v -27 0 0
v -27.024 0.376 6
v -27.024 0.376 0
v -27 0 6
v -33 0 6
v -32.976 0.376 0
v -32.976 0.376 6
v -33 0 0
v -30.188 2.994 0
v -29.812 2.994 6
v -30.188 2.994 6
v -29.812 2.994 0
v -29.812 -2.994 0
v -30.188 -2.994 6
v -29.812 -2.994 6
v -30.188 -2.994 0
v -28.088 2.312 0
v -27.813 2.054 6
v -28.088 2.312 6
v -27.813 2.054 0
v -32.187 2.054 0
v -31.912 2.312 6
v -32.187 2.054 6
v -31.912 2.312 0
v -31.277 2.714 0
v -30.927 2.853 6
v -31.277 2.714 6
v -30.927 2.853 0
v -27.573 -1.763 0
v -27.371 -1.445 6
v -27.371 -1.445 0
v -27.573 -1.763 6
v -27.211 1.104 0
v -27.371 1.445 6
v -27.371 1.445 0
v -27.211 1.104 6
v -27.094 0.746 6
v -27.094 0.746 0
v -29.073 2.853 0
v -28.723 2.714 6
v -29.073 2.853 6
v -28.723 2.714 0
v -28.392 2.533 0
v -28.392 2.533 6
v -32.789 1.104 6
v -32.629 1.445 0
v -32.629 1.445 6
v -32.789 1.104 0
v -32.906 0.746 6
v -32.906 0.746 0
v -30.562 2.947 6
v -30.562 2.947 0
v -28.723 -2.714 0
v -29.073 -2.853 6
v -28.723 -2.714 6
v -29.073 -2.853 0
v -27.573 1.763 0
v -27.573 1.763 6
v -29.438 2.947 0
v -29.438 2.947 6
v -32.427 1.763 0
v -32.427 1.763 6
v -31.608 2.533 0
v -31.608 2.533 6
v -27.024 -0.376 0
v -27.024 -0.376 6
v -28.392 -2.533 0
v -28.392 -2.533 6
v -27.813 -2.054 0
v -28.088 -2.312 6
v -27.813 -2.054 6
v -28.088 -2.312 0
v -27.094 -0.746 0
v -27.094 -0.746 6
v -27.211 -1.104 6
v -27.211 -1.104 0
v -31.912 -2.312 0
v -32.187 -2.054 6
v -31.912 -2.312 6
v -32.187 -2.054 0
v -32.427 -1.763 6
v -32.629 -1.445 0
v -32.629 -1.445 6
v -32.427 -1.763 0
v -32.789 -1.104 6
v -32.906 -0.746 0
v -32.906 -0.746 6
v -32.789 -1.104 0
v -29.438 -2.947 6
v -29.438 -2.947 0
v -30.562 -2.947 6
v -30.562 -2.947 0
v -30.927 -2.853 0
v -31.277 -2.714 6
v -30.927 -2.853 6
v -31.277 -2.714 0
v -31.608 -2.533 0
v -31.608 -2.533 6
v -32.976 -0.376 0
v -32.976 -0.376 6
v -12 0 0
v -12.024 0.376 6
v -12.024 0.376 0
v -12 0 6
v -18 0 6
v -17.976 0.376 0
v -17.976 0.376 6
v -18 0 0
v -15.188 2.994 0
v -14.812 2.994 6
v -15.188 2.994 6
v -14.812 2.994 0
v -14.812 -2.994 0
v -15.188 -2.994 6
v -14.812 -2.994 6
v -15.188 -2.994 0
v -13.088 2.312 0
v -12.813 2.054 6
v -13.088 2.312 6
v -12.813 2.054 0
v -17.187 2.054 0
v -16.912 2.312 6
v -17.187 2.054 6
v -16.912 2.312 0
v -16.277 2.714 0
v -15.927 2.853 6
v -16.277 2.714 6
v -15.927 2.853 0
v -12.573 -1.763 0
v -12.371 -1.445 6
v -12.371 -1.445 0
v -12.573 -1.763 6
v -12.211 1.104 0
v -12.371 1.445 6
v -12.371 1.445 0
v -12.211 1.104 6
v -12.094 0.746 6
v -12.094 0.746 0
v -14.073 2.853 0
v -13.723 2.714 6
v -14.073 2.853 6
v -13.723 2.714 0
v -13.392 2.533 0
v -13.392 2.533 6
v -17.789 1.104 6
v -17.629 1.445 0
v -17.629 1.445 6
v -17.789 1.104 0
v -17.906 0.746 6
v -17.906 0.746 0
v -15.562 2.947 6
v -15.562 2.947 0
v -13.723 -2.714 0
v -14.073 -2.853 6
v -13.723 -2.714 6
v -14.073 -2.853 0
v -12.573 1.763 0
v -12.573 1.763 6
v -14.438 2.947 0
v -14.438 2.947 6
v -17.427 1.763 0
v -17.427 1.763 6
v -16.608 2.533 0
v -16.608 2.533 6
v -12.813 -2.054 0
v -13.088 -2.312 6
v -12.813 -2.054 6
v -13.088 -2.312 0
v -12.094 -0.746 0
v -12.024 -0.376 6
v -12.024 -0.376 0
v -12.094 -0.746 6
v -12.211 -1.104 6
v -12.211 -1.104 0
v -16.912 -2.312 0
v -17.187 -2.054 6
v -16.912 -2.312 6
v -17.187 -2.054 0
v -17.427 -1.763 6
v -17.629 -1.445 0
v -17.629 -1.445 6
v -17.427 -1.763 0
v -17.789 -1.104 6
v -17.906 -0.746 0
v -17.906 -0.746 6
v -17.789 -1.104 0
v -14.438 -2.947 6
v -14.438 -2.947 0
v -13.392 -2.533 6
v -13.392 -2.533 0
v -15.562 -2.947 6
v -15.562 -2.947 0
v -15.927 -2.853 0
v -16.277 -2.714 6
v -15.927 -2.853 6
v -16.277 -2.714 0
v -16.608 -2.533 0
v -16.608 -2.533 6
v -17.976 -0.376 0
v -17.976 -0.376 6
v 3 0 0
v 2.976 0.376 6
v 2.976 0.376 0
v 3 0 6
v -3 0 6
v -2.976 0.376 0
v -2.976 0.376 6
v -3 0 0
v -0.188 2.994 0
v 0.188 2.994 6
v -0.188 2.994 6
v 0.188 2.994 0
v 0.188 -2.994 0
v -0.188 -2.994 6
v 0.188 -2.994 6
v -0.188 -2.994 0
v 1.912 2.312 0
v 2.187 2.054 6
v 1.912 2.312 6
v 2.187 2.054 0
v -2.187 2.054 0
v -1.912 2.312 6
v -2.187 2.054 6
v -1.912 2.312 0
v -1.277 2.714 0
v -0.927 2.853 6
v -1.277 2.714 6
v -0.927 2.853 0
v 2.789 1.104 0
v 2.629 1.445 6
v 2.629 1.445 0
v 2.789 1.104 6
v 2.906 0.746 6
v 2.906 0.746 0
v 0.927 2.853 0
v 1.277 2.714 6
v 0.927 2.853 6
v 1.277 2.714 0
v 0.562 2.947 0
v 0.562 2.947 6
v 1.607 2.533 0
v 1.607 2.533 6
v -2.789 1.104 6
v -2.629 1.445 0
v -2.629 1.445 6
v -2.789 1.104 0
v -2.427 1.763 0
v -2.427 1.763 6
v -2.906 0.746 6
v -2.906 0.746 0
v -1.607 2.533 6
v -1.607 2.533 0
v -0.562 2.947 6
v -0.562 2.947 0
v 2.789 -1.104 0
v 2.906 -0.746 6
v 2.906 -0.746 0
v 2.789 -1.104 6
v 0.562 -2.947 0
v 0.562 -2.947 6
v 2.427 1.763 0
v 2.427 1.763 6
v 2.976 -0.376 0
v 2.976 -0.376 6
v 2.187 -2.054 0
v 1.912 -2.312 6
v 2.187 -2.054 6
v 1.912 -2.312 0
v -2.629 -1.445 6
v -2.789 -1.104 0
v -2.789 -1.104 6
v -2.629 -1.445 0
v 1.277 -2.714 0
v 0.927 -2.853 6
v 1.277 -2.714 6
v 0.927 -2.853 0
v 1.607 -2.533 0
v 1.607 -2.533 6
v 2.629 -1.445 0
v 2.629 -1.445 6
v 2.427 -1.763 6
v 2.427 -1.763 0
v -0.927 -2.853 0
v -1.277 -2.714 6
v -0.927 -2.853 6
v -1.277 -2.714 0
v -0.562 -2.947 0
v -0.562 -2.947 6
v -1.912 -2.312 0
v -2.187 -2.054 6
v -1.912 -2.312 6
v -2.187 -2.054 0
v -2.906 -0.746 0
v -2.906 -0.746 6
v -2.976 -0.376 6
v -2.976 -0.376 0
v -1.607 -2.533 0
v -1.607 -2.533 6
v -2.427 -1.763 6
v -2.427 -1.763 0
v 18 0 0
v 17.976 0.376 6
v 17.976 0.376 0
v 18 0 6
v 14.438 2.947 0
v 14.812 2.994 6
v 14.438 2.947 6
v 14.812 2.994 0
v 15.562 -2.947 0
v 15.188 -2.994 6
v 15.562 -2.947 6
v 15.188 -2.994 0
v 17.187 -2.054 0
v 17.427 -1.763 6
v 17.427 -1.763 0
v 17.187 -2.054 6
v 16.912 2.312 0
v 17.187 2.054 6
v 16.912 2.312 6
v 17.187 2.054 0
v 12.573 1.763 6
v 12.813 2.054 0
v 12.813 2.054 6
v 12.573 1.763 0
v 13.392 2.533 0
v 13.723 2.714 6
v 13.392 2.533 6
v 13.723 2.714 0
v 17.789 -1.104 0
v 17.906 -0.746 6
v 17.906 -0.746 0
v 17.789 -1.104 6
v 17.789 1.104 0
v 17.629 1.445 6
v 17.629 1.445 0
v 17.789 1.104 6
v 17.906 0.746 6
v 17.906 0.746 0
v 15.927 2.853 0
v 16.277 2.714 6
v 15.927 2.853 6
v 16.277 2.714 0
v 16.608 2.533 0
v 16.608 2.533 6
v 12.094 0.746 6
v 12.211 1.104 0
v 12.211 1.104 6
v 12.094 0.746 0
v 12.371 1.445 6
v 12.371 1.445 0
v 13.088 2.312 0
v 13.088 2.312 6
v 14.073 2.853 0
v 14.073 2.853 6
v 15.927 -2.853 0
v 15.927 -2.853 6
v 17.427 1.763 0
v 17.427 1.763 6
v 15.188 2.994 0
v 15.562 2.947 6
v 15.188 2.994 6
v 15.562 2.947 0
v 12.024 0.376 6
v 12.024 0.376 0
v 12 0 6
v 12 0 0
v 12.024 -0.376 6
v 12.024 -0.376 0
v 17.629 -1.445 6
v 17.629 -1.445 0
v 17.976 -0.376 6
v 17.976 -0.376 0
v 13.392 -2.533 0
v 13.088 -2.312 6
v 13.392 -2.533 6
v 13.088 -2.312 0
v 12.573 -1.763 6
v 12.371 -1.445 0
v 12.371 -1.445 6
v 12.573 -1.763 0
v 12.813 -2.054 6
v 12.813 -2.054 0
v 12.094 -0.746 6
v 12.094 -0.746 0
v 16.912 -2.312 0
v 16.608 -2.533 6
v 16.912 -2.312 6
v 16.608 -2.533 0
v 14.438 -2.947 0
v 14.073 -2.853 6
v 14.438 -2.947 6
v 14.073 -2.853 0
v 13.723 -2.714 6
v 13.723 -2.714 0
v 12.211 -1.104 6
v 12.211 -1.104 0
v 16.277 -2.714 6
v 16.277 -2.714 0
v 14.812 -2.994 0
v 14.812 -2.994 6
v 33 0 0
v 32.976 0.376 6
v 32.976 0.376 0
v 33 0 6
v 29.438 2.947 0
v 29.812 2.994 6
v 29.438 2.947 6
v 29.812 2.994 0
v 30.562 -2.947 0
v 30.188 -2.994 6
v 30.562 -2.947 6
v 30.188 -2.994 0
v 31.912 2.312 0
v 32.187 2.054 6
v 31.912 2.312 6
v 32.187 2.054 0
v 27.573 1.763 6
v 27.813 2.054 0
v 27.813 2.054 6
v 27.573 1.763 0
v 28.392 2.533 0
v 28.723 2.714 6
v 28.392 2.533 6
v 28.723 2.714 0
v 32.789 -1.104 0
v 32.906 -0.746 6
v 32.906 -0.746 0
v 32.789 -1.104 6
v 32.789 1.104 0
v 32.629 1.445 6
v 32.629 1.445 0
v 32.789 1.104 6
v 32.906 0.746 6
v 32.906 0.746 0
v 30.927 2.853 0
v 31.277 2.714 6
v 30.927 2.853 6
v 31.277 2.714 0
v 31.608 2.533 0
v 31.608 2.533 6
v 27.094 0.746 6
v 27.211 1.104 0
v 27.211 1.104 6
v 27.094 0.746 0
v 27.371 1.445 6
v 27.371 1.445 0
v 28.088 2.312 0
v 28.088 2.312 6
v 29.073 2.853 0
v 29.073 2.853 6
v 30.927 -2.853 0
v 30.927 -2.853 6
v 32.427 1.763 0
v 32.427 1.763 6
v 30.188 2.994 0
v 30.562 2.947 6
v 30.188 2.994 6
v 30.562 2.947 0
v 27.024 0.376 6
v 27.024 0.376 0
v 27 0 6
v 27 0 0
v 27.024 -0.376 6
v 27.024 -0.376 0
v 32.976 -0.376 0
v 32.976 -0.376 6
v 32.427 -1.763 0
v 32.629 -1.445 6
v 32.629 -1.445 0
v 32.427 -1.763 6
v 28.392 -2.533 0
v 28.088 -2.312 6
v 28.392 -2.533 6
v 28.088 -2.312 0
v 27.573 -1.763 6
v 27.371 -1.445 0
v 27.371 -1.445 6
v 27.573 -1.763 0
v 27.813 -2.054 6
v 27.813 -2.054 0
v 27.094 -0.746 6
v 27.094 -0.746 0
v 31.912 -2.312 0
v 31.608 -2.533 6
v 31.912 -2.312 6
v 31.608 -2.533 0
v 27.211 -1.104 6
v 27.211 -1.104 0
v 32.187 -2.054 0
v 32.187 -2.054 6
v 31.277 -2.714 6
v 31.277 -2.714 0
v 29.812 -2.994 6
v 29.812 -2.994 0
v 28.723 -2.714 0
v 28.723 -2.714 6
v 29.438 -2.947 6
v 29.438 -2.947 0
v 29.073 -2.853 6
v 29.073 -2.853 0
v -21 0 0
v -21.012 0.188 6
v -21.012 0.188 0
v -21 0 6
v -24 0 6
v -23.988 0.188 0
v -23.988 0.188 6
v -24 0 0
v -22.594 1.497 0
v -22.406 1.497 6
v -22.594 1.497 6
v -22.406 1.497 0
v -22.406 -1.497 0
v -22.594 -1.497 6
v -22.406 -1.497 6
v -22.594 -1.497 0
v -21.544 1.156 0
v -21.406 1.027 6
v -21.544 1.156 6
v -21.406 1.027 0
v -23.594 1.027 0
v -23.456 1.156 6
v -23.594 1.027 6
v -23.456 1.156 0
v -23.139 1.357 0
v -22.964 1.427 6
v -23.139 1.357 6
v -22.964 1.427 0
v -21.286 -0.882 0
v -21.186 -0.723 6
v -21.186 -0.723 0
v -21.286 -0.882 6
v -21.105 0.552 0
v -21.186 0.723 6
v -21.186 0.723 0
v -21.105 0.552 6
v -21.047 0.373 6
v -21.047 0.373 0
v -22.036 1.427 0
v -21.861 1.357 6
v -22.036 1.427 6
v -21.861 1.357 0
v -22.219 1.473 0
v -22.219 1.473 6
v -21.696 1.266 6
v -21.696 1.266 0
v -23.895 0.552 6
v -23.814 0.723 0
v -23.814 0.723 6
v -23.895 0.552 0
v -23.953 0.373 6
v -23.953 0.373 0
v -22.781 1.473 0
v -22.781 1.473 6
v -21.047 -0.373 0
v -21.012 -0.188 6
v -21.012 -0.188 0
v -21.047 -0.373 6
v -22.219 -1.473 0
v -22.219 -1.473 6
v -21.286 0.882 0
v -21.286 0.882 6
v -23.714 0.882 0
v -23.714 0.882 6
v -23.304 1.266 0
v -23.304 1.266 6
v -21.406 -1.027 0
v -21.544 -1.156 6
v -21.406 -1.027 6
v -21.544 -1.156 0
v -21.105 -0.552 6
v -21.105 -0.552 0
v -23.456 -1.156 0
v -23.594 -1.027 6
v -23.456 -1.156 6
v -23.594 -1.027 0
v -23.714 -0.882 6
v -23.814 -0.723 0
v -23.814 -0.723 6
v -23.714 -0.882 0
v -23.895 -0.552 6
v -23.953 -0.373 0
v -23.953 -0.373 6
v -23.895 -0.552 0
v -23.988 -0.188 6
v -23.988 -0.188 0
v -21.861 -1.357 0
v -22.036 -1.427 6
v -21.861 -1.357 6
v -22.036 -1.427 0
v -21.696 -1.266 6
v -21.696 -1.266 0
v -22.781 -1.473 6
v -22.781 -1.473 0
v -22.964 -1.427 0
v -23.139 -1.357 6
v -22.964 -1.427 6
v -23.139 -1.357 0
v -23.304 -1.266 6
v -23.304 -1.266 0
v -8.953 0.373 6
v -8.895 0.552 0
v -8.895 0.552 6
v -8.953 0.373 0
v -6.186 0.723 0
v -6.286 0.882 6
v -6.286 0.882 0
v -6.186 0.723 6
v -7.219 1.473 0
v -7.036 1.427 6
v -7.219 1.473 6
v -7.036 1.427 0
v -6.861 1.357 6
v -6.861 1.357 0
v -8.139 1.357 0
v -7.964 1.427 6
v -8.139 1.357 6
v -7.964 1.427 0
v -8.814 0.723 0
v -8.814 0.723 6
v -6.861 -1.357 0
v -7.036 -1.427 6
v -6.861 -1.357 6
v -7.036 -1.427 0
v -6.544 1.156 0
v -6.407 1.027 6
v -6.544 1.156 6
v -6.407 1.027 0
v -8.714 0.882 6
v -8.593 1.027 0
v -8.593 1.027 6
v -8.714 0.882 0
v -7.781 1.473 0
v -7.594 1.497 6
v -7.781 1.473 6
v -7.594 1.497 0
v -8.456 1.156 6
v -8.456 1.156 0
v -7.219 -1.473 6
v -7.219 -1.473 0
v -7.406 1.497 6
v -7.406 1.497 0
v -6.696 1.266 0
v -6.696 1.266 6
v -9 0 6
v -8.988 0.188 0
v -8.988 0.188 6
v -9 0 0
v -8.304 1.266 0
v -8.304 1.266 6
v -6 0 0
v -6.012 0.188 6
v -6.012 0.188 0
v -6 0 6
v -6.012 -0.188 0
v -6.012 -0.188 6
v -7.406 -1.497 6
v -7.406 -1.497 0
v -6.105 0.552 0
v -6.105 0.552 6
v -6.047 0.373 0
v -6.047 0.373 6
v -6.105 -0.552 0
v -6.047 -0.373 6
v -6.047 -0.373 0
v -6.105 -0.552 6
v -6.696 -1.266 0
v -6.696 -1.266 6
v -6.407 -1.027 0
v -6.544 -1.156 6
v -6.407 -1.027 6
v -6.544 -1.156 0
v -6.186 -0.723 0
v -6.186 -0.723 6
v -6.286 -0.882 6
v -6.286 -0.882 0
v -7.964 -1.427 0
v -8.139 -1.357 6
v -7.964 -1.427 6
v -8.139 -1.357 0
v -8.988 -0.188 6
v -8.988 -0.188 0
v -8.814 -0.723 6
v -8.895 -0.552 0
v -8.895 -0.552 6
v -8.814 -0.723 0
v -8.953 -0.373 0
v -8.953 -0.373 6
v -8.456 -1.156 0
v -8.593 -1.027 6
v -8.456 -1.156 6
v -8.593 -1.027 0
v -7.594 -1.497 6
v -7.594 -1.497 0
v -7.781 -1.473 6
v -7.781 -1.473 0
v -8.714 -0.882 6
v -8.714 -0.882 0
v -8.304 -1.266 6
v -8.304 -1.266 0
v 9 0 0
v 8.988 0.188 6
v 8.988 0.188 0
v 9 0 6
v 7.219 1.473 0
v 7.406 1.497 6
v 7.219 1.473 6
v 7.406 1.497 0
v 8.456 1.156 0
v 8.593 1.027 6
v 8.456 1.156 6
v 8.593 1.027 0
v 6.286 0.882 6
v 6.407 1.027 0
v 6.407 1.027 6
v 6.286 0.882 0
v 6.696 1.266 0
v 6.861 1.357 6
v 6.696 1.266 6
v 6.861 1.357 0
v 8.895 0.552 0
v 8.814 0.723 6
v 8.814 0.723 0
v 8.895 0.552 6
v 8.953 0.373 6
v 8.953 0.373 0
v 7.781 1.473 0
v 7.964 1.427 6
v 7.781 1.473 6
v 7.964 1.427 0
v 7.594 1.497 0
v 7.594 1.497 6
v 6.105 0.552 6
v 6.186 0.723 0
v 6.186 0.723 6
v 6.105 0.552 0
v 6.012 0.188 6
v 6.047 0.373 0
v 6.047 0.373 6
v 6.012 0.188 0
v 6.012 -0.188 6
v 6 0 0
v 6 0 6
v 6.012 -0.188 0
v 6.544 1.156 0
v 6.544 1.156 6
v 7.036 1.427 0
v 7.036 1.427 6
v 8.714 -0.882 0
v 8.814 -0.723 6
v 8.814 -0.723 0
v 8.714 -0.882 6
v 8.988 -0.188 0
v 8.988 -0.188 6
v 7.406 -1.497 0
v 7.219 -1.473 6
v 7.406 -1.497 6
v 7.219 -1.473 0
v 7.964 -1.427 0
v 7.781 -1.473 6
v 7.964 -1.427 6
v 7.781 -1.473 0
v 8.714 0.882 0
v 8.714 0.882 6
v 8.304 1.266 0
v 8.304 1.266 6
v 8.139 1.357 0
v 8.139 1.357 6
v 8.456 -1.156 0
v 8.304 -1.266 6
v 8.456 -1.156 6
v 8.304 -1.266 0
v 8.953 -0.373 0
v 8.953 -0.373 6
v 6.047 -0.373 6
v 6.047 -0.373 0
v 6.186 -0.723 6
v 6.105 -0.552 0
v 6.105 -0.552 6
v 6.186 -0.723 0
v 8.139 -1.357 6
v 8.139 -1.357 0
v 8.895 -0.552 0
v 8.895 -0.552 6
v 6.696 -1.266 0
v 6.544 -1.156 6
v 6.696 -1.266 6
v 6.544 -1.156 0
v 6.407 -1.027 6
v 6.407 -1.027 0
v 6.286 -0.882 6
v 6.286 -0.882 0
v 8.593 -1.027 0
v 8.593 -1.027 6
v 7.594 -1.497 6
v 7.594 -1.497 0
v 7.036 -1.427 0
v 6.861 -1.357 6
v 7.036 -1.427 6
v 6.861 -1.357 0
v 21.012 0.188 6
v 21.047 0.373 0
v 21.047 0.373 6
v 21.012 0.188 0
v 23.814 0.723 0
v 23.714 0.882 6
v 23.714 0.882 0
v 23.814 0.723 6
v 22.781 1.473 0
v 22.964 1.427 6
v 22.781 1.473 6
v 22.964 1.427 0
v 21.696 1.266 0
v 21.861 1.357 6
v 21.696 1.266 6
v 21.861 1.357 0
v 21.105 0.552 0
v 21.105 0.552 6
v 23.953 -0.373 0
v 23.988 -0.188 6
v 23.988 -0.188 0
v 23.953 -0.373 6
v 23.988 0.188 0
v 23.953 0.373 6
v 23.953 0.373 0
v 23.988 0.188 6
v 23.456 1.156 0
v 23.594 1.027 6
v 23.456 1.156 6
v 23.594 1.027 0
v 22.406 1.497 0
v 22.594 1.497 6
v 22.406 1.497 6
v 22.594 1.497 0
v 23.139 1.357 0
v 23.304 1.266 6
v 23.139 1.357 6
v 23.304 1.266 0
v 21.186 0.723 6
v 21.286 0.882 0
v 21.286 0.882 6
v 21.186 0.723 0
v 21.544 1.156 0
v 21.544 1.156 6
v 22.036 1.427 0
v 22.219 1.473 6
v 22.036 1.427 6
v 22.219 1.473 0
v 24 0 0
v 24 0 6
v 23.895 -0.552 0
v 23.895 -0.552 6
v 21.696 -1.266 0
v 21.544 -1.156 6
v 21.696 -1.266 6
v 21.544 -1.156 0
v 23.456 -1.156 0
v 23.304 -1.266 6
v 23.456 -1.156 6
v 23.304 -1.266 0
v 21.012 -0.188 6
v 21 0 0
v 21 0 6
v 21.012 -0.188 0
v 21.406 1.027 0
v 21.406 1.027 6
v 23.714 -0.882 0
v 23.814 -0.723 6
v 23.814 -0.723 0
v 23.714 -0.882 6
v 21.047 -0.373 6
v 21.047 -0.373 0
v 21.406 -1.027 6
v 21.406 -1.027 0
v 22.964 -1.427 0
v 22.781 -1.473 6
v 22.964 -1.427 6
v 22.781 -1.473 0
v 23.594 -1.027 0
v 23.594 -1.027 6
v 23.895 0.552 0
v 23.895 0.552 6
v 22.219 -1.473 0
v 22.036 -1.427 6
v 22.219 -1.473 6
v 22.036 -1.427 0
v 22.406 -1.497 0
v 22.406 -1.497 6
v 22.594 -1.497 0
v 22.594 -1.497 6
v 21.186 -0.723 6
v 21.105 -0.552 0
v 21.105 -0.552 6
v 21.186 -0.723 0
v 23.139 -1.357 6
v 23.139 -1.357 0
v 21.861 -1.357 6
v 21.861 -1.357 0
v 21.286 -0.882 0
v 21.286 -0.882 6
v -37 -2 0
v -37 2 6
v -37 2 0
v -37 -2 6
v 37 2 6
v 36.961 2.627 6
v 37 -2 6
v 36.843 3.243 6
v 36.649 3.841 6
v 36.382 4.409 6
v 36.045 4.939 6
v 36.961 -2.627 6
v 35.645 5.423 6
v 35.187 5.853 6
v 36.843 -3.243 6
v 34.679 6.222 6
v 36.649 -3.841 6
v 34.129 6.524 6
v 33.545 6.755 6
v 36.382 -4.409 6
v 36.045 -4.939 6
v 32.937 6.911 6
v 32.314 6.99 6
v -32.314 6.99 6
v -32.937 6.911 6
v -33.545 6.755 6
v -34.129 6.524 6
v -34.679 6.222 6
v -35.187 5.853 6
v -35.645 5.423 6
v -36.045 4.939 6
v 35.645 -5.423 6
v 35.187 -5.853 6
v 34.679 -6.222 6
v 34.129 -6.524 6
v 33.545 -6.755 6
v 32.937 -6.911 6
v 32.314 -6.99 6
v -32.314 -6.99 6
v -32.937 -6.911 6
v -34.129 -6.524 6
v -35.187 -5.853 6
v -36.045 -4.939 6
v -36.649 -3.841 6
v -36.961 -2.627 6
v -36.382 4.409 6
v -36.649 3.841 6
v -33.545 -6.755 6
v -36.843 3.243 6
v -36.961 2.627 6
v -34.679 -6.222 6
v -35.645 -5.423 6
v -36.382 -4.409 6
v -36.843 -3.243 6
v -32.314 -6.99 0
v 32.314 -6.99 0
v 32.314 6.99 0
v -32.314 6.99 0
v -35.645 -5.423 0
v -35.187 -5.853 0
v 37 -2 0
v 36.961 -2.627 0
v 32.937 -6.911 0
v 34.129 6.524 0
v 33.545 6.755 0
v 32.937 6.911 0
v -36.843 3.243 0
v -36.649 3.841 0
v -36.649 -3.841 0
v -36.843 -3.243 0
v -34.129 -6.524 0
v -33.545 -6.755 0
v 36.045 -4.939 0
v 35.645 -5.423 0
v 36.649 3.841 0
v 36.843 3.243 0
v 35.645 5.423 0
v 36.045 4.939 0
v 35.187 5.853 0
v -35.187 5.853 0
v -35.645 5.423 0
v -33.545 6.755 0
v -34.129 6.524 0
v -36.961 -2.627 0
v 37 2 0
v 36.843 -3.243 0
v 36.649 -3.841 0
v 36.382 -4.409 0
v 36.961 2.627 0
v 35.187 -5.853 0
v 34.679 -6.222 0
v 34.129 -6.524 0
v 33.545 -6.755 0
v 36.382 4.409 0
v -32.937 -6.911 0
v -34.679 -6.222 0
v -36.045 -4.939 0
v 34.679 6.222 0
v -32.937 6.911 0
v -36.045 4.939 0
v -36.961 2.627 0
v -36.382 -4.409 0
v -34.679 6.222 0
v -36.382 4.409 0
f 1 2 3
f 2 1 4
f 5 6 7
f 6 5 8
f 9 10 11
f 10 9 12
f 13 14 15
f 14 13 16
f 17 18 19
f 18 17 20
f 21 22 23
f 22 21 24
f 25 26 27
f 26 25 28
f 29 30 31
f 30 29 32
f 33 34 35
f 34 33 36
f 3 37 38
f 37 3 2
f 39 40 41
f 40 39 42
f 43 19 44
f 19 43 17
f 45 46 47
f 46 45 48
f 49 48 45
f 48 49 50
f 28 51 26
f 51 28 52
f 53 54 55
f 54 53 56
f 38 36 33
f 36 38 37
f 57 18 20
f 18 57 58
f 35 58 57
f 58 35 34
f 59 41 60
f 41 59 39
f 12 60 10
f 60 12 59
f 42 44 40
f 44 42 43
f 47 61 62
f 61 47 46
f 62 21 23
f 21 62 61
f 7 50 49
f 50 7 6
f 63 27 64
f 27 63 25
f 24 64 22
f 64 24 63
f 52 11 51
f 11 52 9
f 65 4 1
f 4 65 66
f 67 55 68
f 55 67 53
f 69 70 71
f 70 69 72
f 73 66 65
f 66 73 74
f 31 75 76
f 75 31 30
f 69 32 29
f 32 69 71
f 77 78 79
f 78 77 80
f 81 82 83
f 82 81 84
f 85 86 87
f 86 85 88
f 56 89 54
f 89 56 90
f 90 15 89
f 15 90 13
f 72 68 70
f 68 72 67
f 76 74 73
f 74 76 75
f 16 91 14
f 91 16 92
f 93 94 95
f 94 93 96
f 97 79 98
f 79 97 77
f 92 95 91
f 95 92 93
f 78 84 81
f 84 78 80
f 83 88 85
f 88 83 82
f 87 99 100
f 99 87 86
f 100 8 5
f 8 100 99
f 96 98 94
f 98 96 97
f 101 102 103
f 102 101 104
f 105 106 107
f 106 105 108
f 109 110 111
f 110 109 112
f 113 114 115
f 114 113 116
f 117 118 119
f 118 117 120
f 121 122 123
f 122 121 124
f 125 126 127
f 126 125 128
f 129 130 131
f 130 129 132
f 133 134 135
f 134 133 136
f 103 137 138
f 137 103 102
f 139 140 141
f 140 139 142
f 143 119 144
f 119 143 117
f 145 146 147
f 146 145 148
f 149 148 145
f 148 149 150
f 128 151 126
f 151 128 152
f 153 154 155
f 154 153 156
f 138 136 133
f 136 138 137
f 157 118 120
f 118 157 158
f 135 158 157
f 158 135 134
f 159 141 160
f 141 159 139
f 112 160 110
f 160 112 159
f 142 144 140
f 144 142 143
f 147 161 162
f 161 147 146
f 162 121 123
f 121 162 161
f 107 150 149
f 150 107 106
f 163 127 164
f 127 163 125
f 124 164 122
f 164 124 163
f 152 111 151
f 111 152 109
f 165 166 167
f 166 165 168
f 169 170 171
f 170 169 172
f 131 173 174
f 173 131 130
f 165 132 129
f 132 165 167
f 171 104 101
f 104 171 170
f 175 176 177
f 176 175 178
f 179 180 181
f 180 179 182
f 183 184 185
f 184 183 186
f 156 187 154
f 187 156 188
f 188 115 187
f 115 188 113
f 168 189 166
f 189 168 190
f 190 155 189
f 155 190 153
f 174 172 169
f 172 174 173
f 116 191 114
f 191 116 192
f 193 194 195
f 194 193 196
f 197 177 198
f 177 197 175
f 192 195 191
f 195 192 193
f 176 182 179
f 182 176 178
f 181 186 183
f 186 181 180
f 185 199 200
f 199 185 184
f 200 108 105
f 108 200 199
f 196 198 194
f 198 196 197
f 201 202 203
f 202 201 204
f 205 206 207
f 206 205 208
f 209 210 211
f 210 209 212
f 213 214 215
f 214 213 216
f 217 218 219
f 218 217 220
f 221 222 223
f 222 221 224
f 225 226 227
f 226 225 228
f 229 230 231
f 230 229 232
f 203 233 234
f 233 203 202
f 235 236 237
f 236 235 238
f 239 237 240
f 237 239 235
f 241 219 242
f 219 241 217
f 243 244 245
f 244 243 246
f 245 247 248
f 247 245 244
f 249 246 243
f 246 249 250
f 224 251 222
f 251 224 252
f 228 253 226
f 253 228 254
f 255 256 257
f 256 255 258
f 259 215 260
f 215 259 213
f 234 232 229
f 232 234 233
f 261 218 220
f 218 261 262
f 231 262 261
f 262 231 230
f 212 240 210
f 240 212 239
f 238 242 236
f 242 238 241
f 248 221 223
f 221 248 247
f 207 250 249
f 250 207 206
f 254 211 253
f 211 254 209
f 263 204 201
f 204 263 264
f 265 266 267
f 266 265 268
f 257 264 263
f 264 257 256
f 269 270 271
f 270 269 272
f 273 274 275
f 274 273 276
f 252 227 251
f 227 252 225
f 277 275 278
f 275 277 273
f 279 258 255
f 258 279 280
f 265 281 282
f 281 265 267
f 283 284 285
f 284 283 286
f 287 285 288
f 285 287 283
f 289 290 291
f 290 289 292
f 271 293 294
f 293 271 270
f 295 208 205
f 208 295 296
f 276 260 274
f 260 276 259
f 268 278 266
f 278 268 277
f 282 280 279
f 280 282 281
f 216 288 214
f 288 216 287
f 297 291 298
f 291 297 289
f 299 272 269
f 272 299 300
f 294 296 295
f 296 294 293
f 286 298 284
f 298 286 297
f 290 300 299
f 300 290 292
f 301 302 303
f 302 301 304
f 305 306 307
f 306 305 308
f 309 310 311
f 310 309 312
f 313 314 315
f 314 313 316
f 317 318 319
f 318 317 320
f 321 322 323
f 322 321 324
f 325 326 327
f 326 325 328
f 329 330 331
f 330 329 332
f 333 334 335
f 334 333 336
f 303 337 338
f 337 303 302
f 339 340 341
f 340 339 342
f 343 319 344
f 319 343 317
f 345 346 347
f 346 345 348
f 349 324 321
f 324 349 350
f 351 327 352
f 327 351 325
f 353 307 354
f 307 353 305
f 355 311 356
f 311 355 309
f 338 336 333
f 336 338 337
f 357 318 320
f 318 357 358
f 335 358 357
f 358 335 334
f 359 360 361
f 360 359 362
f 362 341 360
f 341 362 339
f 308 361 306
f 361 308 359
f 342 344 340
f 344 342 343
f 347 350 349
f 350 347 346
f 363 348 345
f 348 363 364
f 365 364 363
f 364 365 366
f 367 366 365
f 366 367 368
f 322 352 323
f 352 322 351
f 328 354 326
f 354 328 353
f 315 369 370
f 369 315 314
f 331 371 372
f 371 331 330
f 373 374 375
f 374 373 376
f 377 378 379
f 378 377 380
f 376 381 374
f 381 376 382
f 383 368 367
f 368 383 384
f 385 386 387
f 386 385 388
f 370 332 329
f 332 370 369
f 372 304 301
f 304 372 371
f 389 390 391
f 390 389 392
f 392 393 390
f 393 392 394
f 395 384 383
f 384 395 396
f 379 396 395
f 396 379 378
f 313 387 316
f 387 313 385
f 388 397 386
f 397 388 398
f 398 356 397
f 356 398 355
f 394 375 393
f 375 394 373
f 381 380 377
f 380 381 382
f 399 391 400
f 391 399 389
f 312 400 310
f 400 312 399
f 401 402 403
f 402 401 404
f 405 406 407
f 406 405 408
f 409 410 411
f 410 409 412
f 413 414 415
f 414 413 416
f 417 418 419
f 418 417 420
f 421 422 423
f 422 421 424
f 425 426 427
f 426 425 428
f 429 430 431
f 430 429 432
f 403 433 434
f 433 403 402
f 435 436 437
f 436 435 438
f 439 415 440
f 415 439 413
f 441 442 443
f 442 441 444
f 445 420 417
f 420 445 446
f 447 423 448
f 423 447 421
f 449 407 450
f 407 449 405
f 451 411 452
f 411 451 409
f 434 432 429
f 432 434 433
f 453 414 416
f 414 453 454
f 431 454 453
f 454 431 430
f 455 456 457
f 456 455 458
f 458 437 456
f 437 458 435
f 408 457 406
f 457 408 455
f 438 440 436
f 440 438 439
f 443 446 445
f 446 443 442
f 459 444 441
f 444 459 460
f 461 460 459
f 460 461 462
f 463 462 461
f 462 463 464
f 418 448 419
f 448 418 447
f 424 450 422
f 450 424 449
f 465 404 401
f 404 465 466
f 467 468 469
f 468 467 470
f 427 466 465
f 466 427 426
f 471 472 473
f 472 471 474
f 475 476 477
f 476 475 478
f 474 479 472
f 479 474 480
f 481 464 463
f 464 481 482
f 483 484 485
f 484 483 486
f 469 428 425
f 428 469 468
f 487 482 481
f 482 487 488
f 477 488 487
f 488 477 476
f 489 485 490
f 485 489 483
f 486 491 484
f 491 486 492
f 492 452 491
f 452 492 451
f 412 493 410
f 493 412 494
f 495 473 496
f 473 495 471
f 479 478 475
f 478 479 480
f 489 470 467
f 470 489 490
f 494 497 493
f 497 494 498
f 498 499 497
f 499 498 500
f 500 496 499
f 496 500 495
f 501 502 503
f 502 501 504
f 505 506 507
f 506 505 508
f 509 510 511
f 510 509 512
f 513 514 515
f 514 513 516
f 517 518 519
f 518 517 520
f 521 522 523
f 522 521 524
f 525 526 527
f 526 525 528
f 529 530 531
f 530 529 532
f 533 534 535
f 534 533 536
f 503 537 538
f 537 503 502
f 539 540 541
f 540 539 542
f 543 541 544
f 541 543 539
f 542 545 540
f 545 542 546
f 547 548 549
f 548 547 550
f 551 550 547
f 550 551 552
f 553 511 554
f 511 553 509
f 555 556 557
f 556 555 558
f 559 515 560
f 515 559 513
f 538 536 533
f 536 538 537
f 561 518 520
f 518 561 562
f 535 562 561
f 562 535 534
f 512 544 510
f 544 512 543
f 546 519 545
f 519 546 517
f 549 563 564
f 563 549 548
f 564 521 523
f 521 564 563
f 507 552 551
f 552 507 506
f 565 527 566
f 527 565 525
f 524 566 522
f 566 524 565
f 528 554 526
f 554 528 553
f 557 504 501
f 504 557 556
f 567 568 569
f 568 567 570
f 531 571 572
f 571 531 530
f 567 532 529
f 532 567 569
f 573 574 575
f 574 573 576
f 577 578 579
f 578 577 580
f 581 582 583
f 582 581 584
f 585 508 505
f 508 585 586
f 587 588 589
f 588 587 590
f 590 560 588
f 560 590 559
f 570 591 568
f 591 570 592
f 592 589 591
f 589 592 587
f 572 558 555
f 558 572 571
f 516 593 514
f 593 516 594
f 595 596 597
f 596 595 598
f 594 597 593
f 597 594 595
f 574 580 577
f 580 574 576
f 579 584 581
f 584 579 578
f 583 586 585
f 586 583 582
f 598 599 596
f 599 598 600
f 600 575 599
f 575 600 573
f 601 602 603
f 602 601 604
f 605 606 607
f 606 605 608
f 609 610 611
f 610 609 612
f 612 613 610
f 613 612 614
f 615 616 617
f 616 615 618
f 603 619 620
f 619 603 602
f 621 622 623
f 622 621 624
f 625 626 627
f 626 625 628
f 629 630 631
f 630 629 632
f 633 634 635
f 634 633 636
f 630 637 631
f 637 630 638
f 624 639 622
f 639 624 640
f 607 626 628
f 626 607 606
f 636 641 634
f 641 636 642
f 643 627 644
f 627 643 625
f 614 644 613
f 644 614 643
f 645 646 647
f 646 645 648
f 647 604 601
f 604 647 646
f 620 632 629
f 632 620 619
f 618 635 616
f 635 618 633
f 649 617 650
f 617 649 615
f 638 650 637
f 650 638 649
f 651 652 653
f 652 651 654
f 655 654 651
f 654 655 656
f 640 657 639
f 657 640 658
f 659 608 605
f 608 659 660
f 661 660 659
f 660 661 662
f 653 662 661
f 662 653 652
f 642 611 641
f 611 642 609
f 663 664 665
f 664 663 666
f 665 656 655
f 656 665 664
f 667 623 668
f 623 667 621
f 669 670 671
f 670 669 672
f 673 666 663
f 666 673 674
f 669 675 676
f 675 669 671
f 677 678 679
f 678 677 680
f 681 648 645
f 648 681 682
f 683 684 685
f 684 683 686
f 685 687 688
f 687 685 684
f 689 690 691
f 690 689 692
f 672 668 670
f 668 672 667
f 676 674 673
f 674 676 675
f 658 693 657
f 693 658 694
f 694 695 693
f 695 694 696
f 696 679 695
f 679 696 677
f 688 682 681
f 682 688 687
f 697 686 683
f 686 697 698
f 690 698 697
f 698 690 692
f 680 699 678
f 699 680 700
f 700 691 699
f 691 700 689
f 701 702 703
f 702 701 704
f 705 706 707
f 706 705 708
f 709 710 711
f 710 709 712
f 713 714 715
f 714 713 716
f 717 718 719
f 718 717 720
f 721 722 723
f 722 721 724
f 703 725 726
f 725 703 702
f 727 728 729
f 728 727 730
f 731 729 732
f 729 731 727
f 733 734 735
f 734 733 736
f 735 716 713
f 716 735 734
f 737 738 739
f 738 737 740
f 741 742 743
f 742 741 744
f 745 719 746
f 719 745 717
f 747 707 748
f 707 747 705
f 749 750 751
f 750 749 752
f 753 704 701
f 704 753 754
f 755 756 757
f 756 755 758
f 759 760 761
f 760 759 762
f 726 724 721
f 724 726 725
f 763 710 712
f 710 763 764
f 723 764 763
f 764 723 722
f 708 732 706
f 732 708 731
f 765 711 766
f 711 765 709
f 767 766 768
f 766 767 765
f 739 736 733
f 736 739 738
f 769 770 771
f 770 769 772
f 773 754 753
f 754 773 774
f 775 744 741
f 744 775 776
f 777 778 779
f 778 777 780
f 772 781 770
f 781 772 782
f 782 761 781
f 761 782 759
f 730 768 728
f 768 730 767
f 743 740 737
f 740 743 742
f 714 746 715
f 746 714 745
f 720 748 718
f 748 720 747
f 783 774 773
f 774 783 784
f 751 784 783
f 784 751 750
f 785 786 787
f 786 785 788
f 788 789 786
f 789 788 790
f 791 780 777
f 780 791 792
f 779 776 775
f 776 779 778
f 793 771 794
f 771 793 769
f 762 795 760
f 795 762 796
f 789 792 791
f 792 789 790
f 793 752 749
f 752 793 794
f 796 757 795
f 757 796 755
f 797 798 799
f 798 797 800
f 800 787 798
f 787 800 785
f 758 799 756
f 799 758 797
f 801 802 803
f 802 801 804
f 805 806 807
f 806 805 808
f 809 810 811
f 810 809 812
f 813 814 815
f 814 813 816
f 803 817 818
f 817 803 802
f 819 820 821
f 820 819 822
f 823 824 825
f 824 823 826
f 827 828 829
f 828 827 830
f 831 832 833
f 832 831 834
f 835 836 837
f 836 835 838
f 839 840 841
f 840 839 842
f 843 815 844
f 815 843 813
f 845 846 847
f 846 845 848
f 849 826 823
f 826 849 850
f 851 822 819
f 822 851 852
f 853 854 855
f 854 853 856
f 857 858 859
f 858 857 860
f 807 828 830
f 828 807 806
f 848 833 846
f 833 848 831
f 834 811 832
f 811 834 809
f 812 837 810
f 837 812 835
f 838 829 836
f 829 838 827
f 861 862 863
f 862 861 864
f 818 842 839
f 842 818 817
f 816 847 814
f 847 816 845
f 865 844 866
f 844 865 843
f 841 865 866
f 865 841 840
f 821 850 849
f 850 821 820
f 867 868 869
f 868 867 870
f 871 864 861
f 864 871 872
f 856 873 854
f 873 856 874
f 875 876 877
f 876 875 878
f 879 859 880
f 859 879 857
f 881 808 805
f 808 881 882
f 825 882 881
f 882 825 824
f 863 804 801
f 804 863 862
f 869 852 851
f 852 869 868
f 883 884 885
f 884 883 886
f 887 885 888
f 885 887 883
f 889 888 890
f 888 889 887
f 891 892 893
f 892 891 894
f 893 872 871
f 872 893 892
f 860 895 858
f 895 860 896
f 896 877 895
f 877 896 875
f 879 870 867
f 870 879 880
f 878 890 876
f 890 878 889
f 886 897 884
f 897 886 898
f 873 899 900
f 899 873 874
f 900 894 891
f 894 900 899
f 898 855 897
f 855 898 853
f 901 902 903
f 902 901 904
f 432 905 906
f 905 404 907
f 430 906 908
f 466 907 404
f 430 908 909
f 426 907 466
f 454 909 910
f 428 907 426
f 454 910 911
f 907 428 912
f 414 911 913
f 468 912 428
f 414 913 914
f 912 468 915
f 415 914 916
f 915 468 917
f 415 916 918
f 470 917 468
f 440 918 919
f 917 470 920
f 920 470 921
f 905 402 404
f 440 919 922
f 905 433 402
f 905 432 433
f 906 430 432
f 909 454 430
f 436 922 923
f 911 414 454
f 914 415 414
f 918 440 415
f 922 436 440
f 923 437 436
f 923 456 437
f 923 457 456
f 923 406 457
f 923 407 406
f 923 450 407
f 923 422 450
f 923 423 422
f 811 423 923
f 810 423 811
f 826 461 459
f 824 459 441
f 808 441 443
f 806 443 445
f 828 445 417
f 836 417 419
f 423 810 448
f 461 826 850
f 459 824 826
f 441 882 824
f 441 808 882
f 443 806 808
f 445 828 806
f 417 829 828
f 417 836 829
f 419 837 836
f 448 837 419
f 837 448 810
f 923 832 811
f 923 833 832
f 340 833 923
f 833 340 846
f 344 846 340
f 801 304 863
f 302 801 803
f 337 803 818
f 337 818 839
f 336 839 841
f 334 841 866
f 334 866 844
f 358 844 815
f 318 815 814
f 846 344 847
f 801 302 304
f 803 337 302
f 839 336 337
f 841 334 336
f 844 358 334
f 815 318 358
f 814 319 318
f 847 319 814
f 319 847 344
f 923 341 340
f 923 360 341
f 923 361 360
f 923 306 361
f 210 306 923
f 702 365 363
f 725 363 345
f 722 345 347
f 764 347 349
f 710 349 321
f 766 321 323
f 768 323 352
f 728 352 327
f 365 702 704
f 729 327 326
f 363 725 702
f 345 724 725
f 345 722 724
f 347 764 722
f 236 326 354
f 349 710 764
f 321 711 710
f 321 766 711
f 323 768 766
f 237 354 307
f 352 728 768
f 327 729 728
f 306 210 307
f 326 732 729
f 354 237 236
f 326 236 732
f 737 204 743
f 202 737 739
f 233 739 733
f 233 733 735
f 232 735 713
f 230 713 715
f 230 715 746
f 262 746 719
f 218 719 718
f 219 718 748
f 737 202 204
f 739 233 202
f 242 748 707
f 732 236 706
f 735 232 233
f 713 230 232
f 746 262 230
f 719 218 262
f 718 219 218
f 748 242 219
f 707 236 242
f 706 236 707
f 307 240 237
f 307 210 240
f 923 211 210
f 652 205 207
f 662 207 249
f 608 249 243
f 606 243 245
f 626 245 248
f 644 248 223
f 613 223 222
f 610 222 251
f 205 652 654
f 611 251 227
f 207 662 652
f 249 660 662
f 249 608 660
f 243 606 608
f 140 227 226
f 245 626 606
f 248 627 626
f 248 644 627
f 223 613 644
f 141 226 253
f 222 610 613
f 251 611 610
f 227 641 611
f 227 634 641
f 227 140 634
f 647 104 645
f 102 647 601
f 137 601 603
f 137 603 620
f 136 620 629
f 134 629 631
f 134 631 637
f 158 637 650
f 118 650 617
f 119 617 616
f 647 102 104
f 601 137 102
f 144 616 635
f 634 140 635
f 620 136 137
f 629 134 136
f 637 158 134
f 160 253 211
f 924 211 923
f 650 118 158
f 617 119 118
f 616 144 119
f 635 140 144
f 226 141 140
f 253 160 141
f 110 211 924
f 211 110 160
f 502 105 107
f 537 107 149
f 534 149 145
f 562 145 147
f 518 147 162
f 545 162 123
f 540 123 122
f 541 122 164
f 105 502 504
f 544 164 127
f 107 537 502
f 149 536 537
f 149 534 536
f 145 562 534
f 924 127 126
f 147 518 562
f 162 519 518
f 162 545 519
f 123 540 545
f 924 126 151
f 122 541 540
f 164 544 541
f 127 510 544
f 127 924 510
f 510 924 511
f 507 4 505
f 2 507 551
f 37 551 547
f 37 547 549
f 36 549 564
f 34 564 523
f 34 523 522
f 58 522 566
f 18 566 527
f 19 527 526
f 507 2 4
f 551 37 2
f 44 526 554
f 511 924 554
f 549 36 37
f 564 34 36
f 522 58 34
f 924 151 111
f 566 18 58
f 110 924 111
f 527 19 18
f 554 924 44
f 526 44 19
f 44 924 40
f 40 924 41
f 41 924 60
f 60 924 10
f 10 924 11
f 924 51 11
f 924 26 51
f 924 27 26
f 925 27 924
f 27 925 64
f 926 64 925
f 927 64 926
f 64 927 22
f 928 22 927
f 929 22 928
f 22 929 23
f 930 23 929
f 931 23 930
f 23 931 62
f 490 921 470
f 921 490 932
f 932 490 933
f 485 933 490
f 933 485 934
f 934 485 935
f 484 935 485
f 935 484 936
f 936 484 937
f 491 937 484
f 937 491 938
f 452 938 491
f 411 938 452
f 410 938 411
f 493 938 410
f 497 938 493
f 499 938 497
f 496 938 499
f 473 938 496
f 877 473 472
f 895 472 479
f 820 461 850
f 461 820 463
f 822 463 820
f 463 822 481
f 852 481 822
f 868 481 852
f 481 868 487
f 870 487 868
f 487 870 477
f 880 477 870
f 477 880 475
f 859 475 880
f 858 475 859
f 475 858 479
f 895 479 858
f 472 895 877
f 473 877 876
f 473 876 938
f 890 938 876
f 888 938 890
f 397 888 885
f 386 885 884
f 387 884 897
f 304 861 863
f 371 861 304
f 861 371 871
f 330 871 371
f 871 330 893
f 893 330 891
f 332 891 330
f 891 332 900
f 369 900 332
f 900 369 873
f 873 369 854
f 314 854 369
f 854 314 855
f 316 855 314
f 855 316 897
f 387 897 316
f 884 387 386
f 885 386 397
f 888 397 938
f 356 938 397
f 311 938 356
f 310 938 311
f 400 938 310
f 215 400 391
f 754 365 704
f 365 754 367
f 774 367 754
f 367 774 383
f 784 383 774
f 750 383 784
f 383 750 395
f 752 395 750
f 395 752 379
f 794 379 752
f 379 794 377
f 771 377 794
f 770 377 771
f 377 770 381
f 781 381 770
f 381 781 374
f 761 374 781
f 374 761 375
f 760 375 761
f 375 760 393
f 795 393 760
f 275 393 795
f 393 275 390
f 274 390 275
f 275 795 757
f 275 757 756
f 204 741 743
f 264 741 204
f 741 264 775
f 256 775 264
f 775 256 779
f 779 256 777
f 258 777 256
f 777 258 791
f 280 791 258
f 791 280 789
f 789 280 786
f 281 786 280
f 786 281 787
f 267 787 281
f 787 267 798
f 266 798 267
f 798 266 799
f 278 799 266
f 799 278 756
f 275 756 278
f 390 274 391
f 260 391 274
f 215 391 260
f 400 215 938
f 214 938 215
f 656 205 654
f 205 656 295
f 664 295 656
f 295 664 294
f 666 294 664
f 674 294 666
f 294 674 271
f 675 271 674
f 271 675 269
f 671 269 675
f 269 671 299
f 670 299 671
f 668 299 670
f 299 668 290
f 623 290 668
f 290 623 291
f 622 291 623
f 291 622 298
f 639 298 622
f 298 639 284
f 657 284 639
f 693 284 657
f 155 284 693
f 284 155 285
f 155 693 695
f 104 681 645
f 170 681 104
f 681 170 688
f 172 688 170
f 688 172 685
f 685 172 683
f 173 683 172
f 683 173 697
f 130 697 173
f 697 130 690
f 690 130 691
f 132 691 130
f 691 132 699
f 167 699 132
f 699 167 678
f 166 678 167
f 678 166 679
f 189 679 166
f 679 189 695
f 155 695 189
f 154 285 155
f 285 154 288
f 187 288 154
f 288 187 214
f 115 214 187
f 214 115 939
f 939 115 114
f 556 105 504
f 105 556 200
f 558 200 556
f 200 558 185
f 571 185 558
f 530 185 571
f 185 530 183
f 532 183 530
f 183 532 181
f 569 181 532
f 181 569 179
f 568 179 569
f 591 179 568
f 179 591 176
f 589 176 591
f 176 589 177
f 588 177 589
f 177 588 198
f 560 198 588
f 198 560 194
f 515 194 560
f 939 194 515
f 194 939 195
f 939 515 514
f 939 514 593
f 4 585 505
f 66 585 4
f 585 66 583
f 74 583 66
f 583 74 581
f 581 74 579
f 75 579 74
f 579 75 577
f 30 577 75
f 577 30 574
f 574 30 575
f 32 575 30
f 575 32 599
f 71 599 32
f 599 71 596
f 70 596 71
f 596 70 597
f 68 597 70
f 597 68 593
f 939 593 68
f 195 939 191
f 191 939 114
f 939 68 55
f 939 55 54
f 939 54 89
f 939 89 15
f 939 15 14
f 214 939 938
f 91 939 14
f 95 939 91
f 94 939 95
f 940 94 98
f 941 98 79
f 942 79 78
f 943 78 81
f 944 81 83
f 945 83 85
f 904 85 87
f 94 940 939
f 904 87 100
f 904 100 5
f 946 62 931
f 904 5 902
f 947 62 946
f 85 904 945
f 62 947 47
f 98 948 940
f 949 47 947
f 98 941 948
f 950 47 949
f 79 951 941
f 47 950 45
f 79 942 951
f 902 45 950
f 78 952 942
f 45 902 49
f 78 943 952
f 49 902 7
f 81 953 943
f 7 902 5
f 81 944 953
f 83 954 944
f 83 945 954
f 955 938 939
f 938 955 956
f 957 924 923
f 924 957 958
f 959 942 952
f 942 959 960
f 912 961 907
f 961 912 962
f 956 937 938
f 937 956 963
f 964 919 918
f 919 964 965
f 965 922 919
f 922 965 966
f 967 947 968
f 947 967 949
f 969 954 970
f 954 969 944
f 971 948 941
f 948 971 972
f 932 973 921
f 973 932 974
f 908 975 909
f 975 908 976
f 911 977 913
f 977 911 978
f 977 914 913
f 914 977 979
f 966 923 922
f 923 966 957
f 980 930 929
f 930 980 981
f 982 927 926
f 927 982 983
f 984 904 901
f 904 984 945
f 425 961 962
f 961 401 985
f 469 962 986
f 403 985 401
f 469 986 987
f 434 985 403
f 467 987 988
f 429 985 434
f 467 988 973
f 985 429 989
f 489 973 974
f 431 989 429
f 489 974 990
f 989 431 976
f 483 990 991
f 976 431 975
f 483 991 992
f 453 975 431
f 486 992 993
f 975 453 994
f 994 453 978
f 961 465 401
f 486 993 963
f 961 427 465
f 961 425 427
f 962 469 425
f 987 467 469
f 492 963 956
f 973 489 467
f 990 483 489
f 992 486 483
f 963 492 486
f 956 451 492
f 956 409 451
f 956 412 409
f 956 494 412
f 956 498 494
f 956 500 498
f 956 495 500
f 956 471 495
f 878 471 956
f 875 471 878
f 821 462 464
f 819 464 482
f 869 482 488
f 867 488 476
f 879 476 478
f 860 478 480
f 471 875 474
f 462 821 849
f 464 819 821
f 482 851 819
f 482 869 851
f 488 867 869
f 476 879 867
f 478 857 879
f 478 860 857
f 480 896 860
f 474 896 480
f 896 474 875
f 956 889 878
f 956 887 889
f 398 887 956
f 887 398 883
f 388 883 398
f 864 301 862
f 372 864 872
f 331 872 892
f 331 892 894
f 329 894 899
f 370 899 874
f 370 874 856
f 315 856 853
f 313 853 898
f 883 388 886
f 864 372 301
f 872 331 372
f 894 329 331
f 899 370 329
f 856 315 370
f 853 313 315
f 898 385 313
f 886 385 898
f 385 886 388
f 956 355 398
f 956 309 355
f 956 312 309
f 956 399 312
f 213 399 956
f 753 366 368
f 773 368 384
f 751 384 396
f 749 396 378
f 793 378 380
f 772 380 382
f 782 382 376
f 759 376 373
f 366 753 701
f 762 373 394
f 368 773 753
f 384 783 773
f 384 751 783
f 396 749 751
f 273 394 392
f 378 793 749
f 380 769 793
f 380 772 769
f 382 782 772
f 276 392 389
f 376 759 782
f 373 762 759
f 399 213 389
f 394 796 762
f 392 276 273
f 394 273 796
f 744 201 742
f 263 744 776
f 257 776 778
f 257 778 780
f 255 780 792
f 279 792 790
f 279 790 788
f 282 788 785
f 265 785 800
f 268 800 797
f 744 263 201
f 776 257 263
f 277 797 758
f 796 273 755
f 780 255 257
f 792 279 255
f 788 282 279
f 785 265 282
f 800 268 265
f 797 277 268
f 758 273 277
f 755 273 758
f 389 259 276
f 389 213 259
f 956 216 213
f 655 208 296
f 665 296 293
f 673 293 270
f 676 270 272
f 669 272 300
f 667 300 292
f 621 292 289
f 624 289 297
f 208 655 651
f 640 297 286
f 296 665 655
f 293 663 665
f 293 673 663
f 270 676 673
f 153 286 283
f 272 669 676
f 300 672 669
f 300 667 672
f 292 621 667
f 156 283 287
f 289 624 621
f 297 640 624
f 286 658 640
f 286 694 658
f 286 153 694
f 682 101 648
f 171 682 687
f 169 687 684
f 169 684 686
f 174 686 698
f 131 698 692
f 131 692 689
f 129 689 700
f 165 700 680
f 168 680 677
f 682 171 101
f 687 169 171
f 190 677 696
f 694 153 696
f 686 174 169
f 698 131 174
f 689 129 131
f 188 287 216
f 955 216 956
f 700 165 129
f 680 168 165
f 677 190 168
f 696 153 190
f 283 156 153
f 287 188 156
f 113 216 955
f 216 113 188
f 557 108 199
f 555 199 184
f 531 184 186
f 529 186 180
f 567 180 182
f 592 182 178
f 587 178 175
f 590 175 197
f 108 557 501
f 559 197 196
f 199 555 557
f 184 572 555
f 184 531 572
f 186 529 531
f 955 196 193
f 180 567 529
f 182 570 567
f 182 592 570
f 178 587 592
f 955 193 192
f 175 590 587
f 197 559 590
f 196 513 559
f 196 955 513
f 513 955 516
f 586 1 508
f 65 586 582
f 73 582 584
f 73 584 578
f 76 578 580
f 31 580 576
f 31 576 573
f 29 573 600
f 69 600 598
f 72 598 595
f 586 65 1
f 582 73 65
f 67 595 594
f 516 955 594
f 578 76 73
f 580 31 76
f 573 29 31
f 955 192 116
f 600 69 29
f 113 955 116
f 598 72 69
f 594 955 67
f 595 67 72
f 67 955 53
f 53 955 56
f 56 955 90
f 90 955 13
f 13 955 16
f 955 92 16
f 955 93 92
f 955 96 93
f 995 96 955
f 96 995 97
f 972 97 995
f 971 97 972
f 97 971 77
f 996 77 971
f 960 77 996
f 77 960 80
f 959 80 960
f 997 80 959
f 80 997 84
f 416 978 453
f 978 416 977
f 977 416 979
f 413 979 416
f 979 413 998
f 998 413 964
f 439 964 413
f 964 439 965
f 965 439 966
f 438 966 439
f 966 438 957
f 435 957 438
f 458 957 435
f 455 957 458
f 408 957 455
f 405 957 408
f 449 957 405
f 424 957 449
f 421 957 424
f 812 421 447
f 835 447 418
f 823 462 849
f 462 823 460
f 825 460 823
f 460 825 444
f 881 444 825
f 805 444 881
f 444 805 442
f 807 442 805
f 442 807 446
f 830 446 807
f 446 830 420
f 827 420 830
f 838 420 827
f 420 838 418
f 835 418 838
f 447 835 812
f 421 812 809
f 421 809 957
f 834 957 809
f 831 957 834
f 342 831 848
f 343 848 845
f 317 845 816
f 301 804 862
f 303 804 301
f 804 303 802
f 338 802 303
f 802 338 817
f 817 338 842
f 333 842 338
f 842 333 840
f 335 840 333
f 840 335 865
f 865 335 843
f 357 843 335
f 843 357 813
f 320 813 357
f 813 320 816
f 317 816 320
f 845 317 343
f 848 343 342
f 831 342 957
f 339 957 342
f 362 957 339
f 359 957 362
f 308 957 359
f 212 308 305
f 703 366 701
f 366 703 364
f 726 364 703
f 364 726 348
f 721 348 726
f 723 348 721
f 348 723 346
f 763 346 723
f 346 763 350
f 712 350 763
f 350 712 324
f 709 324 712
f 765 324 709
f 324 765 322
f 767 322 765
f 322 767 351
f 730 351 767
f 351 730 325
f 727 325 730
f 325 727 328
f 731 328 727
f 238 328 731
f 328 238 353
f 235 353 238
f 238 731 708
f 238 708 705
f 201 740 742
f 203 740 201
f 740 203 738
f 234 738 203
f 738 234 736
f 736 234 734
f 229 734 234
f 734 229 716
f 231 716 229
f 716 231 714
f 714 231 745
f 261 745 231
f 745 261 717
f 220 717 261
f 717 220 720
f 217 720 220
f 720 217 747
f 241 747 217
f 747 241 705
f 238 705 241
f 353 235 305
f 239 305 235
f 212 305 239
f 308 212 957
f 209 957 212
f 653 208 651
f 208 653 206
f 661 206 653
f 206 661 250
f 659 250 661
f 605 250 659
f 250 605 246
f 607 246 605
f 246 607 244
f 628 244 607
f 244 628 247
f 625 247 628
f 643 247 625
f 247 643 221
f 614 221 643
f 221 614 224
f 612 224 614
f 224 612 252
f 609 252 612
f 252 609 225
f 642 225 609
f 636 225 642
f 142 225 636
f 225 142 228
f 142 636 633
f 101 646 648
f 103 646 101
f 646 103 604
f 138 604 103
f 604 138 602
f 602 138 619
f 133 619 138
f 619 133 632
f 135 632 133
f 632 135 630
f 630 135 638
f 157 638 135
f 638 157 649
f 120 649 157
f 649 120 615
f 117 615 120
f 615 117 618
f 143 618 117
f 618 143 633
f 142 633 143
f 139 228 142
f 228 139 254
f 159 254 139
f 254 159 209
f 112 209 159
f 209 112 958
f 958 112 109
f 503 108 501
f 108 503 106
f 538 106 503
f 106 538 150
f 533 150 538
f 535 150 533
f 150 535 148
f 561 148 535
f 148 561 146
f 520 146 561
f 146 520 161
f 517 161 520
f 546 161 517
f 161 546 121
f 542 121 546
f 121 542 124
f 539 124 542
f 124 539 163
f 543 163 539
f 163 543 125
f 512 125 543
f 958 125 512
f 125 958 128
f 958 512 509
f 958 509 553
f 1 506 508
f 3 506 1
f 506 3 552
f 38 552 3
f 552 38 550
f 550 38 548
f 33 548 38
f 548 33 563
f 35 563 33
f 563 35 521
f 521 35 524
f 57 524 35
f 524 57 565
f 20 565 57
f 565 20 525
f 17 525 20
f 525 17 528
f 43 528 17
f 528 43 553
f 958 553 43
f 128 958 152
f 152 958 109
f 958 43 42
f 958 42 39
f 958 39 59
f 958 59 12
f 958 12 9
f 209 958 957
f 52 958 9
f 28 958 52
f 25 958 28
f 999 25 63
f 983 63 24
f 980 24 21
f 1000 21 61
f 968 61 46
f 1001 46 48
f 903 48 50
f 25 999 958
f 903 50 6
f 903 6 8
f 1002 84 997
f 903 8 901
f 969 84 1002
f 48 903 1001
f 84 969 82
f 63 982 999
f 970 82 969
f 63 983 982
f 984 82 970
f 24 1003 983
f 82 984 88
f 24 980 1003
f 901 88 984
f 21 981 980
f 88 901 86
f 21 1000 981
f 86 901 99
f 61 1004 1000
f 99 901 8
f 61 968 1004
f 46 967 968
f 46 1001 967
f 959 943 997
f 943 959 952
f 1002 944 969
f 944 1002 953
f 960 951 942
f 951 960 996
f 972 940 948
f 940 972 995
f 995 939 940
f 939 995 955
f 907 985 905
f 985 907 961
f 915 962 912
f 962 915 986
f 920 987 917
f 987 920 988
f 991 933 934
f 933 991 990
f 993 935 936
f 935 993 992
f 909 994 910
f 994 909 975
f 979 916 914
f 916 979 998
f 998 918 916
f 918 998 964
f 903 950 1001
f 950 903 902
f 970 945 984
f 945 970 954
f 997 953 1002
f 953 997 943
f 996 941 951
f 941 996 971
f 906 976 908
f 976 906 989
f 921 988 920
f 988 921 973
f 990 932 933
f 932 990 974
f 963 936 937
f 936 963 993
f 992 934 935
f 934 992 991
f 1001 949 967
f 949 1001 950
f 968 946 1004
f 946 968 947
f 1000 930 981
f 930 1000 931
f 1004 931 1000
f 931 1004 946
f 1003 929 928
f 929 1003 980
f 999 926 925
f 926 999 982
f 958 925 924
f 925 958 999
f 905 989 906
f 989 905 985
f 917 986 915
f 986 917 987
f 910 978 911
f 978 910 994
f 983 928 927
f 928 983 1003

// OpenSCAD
$fn = 50;


difference() {
	union() {
		*color(alpha = 1.0000000000, c = "gray") {
			translate(v = [0, 7, 0]) {
				linear_extrude(height = 1) {
					text(font = "Arial:style=Bold", halign = "center", size = 4.5000000000, text = "COMMENT plate main", valign = "center");
				}
			}
		}
		*color(alpha = 1.0000000000, c = "gray") {
			translate(v = [0, 14, 0]) {
				linear_extrude(height = 1) {
					text(font = "Arial:style=Bold", halign = "center", size = 4.5000000000, text = "COMMENT description oobb_plate_shape_p_type_6_depth_5_width_1_height_6_thickness_true_both_holes", valign = "center");
				}
			}
		}
		hull() {
			translate(v = [-32.0000000000, 2.0000000000, 0]) {
				cylinder(h = 6, r = 5);
			}
			translate(v = [32.0000000000, 2.0000000000, 0]) {
				cylinder(h = 6, r = 5);
			}
			translate(v = [-32.0000000000, -2.0000000000, 0]) {
				cylinder(h = 6, r = 5);
			}
			translate(v = [32.0000000000, -2.0000000000, 0]) {
				cylinder(h = 6, r = 5);
			}
		}
	}
	union() {
		*color(alpha = 1.0000000000, c = "gray") {
			translate(v = [0, 7, 0]) {
				linear_extrude(height = 1) {
					text(font = "Arial:style=Bold", halign = "center", size = 4.5000000000, text = "COMMENT holes main", valign = "center");
				}
			}
		}
		*color(alpha = 1.0000000000, c = "gray") {
			translate(v = [0, 14, 0]) {
				linear_extrude(height = 1) {
					text(font = "Arial:style=Bold", halign = "center", size = 4.5000000000, text = "COMMENT description oobb_holes_shape_n_type_5_width_1_height_6_thickness_true_both_holes", valign = "center");
				}
			}
		}
		translate(v = [-30.0000000000, 0.0000000000, 0]) {
			translate(v = [0, 0, -50]) {
				cylinder(h = 100, r = 3.0000000000);
			}
		}
		translate(v = [-15.0000000000, 0.0000000000, 0]) {
			translate(v = [0, 0, -50]) {
				cylinder(h = 100, r = 3.0000000000);
			}
		}
		translate(v = [0, 0, -50]) {
			cylinder(h = 100, r = 3.0000000000);
		}
		translate(v = [15.0000000000, 0.0000000000, 0]) {
			translate(v = [0, 0, -50]) {
				cylinder(h = 100, r = 3.0000000000);
			}
		}
		translate(v = [30.0000000000, 0.0000000000, 0]) {
			translate(v = [0, 0, -50]) {
				cylinder(h = 100, r = 3.0000000000);
			}
		}
		translate(v = [-30.0000000000, 0.0000000000, 0]) {
			translate(v = [0, 0, -50]) {
				cylinder(h = 100, r = 1.5000000000);
			}
		}
		translate(v = [-22.5000000000, 0.0000000000, 0]) {
			translate(v = [0, 0, -50]) {
				cylinder(h = 100, r = 1.5000000000);
			}
		}
		translate(v = [-15.0000000000, 0.0000000000, 0]) {
			translate(v = [0, 0, -50]) {
				cylinder(h = 100, r = 1.5000000000);
			}
		}
		translate(v = [-7.5000000000, 0.0000000000, 0]) {
			translate(v = [0, 0, -50]) {
				cylinder(h = 100, r = 1.5000000000);
			}
		}
		translate(v = [0, 0, -50]) {
			cylinder(h = 100, r = 1.5000000000);
		}
		translate(v = [7.5000000000, 0.0000000000, 0]) {
			translate(v = [0, 0, -50]) {
				cylinder(h = 100, r = 1.5000000000);
			}
		}
		translate(v = [15.0000000000, 0.0000000000, 0]) {
			translate(v = [0, 0, -50]) {
				cylinder(h = 100, r = 1.5000000000);
			}
		}
		translate(v = [22.5000000000, 0.0000000000, 0]) {
			translate(v = [0, 0, -50]) {
				cylinder(h = 100, r = 1.5000000000);
			}
		}
		translate(v = [30.0000000000, 0.0000000000, 0]) {
			translate(v = [0, 0, -50]) {
				cylinder(h = 100, r = 1.5000000000);
			}
		}
	}
}
